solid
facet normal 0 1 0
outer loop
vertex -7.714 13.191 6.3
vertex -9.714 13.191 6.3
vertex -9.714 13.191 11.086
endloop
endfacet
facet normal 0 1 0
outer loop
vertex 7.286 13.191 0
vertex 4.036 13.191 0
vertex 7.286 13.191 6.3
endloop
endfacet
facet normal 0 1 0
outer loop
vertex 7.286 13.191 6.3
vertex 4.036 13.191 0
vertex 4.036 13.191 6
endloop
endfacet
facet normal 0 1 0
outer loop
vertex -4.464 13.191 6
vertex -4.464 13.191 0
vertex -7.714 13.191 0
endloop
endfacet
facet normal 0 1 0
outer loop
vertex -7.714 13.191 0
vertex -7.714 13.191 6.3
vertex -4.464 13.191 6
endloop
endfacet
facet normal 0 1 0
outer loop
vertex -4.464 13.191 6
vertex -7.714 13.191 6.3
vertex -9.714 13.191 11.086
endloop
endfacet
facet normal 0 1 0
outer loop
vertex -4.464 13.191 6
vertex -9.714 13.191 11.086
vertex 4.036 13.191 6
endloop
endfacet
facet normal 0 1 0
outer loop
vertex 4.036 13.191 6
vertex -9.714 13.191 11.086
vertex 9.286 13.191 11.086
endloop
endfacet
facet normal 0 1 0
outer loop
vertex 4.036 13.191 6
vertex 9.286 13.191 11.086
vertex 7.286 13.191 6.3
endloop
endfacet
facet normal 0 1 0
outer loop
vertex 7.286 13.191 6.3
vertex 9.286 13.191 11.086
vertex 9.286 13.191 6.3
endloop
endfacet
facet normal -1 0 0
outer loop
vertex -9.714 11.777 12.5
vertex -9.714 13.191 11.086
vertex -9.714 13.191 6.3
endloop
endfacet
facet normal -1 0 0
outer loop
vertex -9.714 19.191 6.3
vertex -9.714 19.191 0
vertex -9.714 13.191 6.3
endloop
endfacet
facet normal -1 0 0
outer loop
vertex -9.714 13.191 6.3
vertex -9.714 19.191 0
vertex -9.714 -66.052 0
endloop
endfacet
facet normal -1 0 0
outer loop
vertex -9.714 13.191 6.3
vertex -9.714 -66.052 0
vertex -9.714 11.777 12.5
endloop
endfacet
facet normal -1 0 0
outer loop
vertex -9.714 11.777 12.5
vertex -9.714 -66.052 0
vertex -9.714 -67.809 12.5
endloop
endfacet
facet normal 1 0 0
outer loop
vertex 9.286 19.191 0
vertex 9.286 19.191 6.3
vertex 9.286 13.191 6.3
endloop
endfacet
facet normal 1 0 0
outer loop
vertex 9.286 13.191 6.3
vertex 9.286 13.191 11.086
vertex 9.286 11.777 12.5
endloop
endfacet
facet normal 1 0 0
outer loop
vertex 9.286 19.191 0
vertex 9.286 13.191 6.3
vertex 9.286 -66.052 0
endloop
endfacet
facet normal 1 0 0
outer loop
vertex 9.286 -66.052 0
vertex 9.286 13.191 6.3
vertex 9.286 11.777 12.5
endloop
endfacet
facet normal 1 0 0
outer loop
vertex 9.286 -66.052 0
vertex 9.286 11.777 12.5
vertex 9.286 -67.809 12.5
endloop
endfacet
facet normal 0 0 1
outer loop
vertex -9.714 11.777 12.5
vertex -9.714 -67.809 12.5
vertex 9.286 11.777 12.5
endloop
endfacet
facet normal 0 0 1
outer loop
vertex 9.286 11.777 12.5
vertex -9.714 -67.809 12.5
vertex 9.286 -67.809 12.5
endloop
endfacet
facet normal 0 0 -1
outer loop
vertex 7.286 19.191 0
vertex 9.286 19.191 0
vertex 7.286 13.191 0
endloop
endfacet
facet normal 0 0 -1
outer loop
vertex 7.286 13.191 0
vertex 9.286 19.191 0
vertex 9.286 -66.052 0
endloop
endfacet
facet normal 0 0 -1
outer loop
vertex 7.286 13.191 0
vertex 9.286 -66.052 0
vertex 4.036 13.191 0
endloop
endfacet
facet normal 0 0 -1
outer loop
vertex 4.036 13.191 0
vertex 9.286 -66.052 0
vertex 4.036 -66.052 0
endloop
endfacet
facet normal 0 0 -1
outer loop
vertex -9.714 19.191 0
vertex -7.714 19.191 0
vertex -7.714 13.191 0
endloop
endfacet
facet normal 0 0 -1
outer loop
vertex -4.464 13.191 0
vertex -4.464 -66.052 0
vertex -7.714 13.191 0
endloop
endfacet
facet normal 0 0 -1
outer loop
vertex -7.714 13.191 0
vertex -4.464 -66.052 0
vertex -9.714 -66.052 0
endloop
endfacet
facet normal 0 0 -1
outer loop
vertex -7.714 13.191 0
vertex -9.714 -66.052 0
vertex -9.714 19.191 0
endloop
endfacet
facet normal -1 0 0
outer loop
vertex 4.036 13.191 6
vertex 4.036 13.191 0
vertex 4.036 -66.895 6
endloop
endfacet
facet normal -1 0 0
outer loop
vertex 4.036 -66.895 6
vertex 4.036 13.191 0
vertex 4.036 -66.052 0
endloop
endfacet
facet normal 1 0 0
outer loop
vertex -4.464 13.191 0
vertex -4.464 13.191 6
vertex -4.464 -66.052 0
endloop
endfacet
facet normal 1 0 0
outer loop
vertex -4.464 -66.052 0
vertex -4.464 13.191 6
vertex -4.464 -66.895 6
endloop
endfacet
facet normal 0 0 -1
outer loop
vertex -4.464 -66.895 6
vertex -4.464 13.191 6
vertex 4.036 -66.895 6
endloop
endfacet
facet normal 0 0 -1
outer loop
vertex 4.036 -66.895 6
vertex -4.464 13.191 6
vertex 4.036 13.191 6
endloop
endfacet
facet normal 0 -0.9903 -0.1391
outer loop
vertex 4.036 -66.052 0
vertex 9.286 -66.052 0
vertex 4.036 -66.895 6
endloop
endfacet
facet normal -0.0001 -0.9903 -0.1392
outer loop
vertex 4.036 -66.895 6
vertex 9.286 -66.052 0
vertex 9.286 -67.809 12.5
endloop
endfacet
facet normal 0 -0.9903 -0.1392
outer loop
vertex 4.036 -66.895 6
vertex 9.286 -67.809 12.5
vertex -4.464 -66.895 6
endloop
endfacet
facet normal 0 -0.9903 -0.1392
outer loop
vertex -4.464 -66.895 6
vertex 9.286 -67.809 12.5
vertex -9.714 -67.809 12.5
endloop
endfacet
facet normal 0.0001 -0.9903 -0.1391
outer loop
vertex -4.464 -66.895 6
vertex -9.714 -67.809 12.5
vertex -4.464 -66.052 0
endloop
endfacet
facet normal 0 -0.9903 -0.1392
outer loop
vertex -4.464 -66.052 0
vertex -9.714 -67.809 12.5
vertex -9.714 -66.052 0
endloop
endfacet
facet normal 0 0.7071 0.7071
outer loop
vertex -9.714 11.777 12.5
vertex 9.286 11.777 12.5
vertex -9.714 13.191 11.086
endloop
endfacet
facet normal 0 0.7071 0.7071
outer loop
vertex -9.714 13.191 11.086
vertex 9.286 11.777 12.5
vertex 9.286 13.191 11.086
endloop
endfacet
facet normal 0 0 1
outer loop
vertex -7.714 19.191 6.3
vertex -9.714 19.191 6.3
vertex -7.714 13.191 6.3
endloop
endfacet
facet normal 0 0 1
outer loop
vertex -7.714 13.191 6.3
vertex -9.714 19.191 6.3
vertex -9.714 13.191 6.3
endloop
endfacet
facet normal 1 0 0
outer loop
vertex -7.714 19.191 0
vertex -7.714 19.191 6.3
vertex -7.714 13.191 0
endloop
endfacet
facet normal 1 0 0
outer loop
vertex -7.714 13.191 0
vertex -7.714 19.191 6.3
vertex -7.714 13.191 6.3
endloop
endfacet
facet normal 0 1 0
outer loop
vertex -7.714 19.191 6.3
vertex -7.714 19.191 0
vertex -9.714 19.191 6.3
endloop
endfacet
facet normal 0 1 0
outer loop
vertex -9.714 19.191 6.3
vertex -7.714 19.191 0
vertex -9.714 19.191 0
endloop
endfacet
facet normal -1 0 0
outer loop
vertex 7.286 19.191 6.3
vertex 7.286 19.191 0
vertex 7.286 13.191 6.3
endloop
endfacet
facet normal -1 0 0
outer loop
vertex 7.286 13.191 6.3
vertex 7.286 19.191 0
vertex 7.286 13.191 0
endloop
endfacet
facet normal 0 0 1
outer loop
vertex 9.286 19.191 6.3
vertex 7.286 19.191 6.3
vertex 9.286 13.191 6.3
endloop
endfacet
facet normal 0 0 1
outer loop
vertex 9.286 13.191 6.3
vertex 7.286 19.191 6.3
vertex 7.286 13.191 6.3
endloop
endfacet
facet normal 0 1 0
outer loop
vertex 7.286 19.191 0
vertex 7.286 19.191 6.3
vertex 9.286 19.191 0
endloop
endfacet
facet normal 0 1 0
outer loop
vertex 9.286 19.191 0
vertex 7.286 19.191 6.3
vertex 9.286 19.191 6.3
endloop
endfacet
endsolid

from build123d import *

# Parameters (mm, degrees)
SKETCH1_W           = 19
SKETCH1_H           = 81
BOSS_EXTRUDE1_DEPTH = 12.5
SKETCH2_W           = 8.5
SKETCH2_H           = 81
CUT_EXTRUDE1_DEPTH  = 6
SKETCH3_W           = 31.784398885
SKETCH3_H           = 20.084620154
CUT_EXTRUDE2_DEPTH  = 82.482700732
SKETCH4_W           = 27.793270948
SKETCH4_H           = 17.497219338
CUT_EXTRUDE3_DEPTH  = 82.444960882
SKETCH5_W           = 2
SKETCH5_H           = 6.3
BOSS_EXTRUDE2_DEPTH = 6


with BuildPart() as part:
    # Sketch1 → Boss-Extrude1 (new body)
    with BuildSketch(Plane.XY):
        with Locations((-0.214285714, -27.308823529)):
            Rectangle(SKETCH1_W, SKETCH1_H)
    extrude(amount=BOSS_EXTRUDE1_DEPTH)

    # Sketch2 → Cut-Extrude1 (cut)
    with BuildSketch(Plane(origin=(0, 0, 0), x_dir=(-1, 0, 0), z_dir=(0, 0, -1))):
        with Locations((0.214285714, -27.308823529)):
            Rectangle(SKETCH2_W, SKETCH2_H)
    extrude(amount=-CUT_EXTRUDE1_DEPTH, mode=Mode.SUBTRACT)

    # Sketch3 → Cut-Extrude2 (cut, through all)
    with BuildSketch(Plane(origin=(0, -64.772690644, -9.103208009), x_dir=(1, 0, 0), z_dir=(0, -0.9902680687415703, -0.13917310096006574))):
        with Locations((-0.737280551, 17.487835558)):
            Rectangle(SKETCH3_W, SKETCH3_H)
    extrude(amount=CUT_EXTRUDE2_DEPTH, mode=Mode.SUBTRACT)

    # Sketch4 → Cut-Extrude3 (cut, through all)
    with BuildSketch(Plane(origin=(0, 12.138481454, 12.138481454), x_dir=(-1, 0, 0), z_dir=(0, 0.7071067811865464, 0.7071067811865488))):
        with Locations((0.087709147, -6.370587608)):
            Rectangle(SKETCH4_W, SKETCH4_H)
    extrude(amount=CUT_EXTRUDE3_DEPTH, mode=Mode.SUBTRACT)

    # Sketch5 → Boss-Extrude2 (add)
    with BuildSketch(Plane(origin=(0, 13.191176471, 0), x_dir=(1, 0, 0), z_dir=(0, 1, 0))):
        with Locations((-8.714285714, -3.15)):
            Rectangle(SKETCH5_W, SKETCH5_H)
        with Locations((8.285714286, -3.15)):
            Rectangle(SKETCH5_W, SKETCH5_H)
    extrude(amount=BOSS_EXTRUDE2_DEPTH)


solid = part.part
